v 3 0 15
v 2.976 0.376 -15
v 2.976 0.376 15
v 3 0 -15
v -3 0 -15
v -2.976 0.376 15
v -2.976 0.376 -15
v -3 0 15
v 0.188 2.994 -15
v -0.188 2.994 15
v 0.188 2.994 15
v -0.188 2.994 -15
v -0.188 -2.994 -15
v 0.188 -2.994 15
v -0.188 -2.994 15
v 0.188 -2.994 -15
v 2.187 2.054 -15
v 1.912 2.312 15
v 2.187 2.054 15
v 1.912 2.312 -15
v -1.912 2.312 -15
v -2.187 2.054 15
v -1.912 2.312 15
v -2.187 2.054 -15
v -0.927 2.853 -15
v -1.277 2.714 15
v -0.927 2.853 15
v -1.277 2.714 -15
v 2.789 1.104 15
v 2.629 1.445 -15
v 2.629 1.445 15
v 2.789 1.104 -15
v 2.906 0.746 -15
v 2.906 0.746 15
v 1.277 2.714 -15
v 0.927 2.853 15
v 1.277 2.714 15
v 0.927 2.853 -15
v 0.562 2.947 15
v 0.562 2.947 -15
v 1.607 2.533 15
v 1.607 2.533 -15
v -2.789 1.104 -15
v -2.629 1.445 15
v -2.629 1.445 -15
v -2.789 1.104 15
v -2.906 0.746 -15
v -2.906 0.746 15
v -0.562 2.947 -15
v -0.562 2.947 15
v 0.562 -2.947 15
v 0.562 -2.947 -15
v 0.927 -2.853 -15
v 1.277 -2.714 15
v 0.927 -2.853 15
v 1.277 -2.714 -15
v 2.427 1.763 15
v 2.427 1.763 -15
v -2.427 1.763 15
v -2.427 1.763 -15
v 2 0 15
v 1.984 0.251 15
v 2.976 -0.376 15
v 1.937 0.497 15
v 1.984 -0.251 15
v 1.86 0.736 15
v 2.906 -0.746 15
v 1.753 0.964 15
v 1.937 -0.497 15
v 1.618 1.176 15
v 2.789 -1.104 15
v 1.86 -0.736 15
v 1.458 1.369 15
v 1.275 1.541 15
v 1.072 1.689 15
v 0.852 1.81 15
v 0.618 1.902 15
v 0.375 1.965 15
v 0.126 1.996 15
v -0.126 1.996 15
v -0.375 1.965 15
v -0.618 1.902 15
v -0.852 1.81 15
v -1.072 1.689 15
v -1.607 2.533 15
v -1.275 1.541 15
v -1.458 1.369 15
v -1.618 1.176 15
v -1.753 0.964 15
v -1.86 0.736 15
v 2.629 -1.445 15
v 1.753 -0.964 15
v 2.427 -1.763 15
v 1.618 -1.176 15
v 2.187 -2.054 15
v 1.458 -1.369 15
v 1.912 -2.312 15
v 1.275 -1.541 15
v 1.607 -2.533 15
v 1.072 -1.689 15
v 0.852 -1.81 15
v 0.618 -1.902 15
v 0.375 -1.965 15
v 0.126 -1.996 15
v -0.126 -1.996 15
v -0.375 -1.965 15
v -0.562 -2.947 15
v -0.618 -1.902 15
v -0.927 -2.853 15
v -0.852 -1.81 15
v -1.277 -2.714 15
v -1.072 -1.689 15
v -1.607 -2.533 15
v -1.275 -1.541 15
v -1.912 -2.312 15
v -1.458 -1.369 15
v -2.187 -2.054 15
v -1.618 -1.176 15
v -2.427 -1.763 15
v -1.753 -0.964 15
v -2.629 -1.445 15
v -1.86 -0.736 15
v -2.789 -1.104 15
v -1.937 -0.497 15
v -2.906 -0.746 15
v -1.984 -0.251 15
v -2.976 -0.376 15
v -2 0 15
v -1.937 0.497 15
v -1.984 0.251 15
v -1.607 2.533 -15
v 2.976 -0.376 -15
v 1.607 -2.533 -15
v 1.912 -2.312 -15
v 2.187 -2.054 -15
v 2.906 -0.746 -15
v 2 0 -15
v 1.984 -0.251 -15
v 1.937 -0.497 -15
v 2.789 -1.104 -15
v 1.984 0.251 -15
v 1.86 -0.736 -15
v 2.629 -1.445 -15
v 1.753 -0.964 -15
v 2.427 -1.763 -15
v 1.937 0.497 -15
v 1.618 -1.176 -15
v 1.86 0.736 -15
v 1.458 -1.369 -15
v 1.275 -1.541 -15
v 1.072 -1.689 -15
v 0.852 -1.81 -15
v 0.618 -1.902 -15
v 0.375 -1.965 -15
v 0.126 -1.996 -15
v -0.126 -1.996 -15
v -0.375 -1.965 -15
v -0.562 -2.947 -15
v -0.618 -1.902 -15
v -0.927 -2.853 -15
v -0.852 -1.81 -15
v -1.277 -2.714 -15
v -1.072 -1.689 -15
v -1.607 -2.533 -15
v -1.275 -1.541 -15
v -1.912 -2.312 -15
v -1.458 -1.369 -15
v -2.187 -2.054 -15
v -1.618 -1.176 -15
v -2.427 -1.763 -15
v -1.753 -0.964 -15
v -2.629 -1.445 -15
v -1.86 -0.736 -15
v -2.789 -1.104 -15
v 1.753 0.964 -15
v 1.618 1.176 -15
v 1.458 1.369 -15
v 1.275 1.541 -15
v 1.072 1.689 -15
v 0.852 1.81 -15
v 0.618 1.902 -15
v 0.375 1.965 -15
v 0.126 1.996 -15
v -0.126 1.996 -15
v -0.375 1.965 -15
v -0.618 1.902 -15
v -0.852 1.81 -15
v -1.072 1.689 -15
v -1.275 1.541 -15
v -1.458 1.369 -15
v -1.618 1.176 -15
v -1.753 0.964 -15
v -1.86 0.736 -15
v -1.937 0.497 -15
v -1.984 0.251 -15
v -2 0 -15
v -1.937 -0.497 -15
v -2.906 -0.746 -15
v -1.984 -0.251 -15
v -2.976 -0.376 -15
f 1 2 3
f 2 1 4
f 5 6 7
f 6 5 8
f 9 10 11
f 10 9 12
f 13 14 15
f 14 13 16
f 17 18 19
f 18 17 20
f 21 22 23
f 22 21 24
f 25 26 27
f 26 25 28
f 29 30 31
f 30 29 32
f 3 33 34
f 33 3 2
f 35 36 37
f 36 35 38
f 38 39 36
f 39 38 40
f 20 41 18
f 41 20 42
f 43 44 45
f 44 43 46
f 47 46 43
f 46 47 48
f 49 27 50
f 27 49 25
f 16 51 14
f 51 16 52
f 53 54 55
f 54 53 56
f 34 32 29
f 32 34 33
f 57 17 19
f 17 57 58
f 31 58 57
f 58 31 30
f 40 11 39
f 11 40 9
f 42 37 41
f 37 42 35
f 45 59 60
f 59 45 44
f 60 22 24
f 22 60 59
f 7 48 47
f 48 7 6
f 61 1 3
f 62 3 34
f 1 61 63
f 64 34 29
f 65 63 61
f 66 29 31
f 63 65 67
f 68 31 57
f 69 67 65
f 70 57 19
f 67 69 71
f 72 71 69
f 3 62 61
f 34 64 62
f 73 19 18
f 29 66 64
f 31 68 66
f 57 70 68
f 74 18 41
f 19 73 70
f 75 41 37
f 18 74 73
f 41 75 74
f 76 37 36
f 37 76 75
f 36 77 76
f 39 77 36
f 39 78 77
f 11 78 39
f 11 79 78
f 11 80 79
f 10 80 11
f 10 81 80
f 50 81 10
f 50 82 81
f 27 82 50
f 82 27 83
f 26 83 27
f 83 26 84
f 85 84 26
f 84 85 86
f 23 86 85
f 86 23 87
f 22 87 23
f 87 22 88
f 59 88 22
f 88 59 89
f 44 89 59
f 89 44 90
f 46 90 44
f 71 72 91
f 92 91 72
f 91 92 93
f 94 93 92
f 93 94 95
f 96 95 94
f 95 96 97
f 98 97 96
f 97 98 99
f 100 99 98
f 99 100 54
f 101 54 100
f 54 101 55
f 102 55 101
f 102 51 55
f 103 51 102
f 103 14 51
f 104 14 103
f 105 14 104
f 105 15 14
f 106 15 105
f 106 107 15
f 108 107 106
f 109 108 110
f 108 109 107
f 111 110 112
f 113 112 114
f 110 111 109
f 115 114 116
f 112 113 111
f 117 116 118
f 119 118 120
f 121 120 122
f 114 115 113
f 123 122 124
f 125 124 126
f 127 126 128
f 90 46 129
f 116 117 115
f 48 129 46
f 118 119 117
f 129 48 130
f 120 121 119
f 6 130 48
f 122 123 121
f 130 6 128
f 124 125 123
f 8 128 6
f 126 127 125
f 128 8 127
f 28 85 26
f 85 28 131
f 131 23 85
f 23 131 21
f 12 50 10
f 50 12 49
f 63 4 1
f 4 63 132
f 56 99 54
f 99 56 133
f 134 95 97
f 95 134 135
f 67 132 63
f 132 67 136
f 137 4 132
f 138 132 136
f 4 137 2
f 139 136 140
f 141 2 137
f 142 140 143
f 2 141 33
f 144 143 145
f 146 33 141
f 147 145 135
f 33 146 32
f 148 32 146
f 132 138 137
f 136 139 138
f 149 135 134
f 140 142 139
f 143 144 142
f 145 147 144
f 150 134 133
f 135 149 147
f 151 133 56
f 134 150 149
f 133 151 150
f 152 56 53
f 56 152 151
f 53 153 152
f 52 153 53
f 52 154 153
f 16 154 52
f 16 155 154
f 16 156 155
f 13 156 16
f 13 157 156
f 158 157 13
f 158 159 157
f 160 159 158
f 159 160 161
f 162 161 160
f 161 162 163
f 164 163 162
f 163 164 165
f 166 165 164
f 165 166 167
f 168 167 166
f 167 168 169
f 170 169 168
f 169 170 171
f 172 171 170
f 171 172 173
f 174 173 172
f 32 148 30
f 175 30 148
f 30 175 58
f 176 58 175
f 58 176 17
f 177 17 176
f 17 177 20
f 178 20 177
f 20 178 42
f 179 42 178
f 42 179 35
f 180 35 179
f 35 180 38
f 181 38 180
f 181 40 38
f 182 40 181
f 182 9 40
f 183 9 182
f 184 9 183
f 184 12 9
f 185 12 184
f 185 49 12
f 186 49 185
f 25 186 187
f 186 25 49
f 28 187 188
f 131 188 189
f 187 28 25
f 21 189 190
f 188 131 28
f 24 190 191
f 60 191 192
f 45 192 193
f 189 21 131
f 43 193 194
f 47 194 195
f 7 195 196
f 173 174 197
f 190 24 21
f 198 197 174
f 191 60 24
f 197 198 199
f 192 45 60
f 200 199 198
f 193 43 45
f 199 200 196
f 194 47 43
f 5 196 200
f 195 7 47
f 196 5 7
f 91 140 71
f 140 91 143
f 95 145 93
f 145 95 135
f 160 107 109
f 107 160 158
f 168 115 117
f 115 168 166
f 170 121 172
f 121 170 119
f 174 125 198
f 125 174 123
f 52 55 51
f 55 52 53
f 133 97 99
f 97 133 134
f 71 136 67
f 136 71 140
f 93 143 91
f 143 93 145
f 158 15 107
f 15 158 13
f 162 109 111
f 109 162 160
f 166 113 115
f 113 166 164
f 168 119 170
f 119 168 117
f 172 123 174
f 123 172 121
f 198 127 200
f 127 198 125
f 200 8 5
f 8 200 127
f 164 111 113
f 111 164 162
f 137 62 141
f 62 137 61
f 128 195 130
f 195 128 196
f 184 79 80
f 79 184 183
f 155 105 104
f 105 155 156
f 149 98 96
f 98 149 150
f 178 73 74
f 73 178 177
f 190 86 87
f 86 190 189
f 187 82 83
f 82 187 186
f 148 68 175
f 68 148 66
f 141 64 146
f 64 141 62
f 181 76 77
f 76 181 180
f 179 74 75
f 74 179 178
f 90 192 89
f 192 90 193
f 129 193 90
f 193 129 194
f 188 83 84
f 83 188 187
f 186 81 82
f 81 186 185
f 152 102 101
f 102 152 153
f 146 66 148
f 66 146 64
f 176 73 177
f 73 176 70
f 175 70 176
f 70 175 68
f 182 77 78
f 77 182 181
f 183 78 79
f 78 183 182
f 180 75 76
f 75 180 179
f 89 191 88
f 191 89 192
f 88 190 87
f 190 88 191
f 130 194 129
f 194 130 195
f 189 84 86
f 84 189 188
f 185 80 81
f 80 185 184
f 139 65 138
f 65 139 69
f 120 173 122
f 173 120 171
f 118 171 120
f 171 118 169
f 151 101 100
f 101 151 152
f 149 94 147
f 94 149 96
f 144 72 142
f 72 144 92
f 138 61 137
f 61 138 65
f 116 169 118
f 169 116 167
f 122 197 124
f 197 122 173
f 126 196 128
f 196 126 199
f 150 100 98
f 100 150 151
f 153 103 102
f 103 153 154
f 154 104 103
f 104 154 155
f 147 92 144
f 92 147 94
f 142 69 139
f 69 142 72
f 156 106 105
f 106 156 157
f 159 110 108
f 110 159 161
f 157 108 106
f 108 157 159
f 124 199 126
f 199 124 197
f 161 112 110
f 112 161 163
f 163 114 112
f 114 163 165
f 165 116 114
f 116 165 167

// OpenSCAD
$fn = 50;


difference() {
	union() {
		translate(v = [0, 0, -15.0000000000]) {
			cylinder(h = 30, r = 3.0000000000);
		}
	}
	union() {
		translate(v = [0, 0, -100.0000000000]) {
			cylinder(h = 200, r = 2);
		}
	}
}
